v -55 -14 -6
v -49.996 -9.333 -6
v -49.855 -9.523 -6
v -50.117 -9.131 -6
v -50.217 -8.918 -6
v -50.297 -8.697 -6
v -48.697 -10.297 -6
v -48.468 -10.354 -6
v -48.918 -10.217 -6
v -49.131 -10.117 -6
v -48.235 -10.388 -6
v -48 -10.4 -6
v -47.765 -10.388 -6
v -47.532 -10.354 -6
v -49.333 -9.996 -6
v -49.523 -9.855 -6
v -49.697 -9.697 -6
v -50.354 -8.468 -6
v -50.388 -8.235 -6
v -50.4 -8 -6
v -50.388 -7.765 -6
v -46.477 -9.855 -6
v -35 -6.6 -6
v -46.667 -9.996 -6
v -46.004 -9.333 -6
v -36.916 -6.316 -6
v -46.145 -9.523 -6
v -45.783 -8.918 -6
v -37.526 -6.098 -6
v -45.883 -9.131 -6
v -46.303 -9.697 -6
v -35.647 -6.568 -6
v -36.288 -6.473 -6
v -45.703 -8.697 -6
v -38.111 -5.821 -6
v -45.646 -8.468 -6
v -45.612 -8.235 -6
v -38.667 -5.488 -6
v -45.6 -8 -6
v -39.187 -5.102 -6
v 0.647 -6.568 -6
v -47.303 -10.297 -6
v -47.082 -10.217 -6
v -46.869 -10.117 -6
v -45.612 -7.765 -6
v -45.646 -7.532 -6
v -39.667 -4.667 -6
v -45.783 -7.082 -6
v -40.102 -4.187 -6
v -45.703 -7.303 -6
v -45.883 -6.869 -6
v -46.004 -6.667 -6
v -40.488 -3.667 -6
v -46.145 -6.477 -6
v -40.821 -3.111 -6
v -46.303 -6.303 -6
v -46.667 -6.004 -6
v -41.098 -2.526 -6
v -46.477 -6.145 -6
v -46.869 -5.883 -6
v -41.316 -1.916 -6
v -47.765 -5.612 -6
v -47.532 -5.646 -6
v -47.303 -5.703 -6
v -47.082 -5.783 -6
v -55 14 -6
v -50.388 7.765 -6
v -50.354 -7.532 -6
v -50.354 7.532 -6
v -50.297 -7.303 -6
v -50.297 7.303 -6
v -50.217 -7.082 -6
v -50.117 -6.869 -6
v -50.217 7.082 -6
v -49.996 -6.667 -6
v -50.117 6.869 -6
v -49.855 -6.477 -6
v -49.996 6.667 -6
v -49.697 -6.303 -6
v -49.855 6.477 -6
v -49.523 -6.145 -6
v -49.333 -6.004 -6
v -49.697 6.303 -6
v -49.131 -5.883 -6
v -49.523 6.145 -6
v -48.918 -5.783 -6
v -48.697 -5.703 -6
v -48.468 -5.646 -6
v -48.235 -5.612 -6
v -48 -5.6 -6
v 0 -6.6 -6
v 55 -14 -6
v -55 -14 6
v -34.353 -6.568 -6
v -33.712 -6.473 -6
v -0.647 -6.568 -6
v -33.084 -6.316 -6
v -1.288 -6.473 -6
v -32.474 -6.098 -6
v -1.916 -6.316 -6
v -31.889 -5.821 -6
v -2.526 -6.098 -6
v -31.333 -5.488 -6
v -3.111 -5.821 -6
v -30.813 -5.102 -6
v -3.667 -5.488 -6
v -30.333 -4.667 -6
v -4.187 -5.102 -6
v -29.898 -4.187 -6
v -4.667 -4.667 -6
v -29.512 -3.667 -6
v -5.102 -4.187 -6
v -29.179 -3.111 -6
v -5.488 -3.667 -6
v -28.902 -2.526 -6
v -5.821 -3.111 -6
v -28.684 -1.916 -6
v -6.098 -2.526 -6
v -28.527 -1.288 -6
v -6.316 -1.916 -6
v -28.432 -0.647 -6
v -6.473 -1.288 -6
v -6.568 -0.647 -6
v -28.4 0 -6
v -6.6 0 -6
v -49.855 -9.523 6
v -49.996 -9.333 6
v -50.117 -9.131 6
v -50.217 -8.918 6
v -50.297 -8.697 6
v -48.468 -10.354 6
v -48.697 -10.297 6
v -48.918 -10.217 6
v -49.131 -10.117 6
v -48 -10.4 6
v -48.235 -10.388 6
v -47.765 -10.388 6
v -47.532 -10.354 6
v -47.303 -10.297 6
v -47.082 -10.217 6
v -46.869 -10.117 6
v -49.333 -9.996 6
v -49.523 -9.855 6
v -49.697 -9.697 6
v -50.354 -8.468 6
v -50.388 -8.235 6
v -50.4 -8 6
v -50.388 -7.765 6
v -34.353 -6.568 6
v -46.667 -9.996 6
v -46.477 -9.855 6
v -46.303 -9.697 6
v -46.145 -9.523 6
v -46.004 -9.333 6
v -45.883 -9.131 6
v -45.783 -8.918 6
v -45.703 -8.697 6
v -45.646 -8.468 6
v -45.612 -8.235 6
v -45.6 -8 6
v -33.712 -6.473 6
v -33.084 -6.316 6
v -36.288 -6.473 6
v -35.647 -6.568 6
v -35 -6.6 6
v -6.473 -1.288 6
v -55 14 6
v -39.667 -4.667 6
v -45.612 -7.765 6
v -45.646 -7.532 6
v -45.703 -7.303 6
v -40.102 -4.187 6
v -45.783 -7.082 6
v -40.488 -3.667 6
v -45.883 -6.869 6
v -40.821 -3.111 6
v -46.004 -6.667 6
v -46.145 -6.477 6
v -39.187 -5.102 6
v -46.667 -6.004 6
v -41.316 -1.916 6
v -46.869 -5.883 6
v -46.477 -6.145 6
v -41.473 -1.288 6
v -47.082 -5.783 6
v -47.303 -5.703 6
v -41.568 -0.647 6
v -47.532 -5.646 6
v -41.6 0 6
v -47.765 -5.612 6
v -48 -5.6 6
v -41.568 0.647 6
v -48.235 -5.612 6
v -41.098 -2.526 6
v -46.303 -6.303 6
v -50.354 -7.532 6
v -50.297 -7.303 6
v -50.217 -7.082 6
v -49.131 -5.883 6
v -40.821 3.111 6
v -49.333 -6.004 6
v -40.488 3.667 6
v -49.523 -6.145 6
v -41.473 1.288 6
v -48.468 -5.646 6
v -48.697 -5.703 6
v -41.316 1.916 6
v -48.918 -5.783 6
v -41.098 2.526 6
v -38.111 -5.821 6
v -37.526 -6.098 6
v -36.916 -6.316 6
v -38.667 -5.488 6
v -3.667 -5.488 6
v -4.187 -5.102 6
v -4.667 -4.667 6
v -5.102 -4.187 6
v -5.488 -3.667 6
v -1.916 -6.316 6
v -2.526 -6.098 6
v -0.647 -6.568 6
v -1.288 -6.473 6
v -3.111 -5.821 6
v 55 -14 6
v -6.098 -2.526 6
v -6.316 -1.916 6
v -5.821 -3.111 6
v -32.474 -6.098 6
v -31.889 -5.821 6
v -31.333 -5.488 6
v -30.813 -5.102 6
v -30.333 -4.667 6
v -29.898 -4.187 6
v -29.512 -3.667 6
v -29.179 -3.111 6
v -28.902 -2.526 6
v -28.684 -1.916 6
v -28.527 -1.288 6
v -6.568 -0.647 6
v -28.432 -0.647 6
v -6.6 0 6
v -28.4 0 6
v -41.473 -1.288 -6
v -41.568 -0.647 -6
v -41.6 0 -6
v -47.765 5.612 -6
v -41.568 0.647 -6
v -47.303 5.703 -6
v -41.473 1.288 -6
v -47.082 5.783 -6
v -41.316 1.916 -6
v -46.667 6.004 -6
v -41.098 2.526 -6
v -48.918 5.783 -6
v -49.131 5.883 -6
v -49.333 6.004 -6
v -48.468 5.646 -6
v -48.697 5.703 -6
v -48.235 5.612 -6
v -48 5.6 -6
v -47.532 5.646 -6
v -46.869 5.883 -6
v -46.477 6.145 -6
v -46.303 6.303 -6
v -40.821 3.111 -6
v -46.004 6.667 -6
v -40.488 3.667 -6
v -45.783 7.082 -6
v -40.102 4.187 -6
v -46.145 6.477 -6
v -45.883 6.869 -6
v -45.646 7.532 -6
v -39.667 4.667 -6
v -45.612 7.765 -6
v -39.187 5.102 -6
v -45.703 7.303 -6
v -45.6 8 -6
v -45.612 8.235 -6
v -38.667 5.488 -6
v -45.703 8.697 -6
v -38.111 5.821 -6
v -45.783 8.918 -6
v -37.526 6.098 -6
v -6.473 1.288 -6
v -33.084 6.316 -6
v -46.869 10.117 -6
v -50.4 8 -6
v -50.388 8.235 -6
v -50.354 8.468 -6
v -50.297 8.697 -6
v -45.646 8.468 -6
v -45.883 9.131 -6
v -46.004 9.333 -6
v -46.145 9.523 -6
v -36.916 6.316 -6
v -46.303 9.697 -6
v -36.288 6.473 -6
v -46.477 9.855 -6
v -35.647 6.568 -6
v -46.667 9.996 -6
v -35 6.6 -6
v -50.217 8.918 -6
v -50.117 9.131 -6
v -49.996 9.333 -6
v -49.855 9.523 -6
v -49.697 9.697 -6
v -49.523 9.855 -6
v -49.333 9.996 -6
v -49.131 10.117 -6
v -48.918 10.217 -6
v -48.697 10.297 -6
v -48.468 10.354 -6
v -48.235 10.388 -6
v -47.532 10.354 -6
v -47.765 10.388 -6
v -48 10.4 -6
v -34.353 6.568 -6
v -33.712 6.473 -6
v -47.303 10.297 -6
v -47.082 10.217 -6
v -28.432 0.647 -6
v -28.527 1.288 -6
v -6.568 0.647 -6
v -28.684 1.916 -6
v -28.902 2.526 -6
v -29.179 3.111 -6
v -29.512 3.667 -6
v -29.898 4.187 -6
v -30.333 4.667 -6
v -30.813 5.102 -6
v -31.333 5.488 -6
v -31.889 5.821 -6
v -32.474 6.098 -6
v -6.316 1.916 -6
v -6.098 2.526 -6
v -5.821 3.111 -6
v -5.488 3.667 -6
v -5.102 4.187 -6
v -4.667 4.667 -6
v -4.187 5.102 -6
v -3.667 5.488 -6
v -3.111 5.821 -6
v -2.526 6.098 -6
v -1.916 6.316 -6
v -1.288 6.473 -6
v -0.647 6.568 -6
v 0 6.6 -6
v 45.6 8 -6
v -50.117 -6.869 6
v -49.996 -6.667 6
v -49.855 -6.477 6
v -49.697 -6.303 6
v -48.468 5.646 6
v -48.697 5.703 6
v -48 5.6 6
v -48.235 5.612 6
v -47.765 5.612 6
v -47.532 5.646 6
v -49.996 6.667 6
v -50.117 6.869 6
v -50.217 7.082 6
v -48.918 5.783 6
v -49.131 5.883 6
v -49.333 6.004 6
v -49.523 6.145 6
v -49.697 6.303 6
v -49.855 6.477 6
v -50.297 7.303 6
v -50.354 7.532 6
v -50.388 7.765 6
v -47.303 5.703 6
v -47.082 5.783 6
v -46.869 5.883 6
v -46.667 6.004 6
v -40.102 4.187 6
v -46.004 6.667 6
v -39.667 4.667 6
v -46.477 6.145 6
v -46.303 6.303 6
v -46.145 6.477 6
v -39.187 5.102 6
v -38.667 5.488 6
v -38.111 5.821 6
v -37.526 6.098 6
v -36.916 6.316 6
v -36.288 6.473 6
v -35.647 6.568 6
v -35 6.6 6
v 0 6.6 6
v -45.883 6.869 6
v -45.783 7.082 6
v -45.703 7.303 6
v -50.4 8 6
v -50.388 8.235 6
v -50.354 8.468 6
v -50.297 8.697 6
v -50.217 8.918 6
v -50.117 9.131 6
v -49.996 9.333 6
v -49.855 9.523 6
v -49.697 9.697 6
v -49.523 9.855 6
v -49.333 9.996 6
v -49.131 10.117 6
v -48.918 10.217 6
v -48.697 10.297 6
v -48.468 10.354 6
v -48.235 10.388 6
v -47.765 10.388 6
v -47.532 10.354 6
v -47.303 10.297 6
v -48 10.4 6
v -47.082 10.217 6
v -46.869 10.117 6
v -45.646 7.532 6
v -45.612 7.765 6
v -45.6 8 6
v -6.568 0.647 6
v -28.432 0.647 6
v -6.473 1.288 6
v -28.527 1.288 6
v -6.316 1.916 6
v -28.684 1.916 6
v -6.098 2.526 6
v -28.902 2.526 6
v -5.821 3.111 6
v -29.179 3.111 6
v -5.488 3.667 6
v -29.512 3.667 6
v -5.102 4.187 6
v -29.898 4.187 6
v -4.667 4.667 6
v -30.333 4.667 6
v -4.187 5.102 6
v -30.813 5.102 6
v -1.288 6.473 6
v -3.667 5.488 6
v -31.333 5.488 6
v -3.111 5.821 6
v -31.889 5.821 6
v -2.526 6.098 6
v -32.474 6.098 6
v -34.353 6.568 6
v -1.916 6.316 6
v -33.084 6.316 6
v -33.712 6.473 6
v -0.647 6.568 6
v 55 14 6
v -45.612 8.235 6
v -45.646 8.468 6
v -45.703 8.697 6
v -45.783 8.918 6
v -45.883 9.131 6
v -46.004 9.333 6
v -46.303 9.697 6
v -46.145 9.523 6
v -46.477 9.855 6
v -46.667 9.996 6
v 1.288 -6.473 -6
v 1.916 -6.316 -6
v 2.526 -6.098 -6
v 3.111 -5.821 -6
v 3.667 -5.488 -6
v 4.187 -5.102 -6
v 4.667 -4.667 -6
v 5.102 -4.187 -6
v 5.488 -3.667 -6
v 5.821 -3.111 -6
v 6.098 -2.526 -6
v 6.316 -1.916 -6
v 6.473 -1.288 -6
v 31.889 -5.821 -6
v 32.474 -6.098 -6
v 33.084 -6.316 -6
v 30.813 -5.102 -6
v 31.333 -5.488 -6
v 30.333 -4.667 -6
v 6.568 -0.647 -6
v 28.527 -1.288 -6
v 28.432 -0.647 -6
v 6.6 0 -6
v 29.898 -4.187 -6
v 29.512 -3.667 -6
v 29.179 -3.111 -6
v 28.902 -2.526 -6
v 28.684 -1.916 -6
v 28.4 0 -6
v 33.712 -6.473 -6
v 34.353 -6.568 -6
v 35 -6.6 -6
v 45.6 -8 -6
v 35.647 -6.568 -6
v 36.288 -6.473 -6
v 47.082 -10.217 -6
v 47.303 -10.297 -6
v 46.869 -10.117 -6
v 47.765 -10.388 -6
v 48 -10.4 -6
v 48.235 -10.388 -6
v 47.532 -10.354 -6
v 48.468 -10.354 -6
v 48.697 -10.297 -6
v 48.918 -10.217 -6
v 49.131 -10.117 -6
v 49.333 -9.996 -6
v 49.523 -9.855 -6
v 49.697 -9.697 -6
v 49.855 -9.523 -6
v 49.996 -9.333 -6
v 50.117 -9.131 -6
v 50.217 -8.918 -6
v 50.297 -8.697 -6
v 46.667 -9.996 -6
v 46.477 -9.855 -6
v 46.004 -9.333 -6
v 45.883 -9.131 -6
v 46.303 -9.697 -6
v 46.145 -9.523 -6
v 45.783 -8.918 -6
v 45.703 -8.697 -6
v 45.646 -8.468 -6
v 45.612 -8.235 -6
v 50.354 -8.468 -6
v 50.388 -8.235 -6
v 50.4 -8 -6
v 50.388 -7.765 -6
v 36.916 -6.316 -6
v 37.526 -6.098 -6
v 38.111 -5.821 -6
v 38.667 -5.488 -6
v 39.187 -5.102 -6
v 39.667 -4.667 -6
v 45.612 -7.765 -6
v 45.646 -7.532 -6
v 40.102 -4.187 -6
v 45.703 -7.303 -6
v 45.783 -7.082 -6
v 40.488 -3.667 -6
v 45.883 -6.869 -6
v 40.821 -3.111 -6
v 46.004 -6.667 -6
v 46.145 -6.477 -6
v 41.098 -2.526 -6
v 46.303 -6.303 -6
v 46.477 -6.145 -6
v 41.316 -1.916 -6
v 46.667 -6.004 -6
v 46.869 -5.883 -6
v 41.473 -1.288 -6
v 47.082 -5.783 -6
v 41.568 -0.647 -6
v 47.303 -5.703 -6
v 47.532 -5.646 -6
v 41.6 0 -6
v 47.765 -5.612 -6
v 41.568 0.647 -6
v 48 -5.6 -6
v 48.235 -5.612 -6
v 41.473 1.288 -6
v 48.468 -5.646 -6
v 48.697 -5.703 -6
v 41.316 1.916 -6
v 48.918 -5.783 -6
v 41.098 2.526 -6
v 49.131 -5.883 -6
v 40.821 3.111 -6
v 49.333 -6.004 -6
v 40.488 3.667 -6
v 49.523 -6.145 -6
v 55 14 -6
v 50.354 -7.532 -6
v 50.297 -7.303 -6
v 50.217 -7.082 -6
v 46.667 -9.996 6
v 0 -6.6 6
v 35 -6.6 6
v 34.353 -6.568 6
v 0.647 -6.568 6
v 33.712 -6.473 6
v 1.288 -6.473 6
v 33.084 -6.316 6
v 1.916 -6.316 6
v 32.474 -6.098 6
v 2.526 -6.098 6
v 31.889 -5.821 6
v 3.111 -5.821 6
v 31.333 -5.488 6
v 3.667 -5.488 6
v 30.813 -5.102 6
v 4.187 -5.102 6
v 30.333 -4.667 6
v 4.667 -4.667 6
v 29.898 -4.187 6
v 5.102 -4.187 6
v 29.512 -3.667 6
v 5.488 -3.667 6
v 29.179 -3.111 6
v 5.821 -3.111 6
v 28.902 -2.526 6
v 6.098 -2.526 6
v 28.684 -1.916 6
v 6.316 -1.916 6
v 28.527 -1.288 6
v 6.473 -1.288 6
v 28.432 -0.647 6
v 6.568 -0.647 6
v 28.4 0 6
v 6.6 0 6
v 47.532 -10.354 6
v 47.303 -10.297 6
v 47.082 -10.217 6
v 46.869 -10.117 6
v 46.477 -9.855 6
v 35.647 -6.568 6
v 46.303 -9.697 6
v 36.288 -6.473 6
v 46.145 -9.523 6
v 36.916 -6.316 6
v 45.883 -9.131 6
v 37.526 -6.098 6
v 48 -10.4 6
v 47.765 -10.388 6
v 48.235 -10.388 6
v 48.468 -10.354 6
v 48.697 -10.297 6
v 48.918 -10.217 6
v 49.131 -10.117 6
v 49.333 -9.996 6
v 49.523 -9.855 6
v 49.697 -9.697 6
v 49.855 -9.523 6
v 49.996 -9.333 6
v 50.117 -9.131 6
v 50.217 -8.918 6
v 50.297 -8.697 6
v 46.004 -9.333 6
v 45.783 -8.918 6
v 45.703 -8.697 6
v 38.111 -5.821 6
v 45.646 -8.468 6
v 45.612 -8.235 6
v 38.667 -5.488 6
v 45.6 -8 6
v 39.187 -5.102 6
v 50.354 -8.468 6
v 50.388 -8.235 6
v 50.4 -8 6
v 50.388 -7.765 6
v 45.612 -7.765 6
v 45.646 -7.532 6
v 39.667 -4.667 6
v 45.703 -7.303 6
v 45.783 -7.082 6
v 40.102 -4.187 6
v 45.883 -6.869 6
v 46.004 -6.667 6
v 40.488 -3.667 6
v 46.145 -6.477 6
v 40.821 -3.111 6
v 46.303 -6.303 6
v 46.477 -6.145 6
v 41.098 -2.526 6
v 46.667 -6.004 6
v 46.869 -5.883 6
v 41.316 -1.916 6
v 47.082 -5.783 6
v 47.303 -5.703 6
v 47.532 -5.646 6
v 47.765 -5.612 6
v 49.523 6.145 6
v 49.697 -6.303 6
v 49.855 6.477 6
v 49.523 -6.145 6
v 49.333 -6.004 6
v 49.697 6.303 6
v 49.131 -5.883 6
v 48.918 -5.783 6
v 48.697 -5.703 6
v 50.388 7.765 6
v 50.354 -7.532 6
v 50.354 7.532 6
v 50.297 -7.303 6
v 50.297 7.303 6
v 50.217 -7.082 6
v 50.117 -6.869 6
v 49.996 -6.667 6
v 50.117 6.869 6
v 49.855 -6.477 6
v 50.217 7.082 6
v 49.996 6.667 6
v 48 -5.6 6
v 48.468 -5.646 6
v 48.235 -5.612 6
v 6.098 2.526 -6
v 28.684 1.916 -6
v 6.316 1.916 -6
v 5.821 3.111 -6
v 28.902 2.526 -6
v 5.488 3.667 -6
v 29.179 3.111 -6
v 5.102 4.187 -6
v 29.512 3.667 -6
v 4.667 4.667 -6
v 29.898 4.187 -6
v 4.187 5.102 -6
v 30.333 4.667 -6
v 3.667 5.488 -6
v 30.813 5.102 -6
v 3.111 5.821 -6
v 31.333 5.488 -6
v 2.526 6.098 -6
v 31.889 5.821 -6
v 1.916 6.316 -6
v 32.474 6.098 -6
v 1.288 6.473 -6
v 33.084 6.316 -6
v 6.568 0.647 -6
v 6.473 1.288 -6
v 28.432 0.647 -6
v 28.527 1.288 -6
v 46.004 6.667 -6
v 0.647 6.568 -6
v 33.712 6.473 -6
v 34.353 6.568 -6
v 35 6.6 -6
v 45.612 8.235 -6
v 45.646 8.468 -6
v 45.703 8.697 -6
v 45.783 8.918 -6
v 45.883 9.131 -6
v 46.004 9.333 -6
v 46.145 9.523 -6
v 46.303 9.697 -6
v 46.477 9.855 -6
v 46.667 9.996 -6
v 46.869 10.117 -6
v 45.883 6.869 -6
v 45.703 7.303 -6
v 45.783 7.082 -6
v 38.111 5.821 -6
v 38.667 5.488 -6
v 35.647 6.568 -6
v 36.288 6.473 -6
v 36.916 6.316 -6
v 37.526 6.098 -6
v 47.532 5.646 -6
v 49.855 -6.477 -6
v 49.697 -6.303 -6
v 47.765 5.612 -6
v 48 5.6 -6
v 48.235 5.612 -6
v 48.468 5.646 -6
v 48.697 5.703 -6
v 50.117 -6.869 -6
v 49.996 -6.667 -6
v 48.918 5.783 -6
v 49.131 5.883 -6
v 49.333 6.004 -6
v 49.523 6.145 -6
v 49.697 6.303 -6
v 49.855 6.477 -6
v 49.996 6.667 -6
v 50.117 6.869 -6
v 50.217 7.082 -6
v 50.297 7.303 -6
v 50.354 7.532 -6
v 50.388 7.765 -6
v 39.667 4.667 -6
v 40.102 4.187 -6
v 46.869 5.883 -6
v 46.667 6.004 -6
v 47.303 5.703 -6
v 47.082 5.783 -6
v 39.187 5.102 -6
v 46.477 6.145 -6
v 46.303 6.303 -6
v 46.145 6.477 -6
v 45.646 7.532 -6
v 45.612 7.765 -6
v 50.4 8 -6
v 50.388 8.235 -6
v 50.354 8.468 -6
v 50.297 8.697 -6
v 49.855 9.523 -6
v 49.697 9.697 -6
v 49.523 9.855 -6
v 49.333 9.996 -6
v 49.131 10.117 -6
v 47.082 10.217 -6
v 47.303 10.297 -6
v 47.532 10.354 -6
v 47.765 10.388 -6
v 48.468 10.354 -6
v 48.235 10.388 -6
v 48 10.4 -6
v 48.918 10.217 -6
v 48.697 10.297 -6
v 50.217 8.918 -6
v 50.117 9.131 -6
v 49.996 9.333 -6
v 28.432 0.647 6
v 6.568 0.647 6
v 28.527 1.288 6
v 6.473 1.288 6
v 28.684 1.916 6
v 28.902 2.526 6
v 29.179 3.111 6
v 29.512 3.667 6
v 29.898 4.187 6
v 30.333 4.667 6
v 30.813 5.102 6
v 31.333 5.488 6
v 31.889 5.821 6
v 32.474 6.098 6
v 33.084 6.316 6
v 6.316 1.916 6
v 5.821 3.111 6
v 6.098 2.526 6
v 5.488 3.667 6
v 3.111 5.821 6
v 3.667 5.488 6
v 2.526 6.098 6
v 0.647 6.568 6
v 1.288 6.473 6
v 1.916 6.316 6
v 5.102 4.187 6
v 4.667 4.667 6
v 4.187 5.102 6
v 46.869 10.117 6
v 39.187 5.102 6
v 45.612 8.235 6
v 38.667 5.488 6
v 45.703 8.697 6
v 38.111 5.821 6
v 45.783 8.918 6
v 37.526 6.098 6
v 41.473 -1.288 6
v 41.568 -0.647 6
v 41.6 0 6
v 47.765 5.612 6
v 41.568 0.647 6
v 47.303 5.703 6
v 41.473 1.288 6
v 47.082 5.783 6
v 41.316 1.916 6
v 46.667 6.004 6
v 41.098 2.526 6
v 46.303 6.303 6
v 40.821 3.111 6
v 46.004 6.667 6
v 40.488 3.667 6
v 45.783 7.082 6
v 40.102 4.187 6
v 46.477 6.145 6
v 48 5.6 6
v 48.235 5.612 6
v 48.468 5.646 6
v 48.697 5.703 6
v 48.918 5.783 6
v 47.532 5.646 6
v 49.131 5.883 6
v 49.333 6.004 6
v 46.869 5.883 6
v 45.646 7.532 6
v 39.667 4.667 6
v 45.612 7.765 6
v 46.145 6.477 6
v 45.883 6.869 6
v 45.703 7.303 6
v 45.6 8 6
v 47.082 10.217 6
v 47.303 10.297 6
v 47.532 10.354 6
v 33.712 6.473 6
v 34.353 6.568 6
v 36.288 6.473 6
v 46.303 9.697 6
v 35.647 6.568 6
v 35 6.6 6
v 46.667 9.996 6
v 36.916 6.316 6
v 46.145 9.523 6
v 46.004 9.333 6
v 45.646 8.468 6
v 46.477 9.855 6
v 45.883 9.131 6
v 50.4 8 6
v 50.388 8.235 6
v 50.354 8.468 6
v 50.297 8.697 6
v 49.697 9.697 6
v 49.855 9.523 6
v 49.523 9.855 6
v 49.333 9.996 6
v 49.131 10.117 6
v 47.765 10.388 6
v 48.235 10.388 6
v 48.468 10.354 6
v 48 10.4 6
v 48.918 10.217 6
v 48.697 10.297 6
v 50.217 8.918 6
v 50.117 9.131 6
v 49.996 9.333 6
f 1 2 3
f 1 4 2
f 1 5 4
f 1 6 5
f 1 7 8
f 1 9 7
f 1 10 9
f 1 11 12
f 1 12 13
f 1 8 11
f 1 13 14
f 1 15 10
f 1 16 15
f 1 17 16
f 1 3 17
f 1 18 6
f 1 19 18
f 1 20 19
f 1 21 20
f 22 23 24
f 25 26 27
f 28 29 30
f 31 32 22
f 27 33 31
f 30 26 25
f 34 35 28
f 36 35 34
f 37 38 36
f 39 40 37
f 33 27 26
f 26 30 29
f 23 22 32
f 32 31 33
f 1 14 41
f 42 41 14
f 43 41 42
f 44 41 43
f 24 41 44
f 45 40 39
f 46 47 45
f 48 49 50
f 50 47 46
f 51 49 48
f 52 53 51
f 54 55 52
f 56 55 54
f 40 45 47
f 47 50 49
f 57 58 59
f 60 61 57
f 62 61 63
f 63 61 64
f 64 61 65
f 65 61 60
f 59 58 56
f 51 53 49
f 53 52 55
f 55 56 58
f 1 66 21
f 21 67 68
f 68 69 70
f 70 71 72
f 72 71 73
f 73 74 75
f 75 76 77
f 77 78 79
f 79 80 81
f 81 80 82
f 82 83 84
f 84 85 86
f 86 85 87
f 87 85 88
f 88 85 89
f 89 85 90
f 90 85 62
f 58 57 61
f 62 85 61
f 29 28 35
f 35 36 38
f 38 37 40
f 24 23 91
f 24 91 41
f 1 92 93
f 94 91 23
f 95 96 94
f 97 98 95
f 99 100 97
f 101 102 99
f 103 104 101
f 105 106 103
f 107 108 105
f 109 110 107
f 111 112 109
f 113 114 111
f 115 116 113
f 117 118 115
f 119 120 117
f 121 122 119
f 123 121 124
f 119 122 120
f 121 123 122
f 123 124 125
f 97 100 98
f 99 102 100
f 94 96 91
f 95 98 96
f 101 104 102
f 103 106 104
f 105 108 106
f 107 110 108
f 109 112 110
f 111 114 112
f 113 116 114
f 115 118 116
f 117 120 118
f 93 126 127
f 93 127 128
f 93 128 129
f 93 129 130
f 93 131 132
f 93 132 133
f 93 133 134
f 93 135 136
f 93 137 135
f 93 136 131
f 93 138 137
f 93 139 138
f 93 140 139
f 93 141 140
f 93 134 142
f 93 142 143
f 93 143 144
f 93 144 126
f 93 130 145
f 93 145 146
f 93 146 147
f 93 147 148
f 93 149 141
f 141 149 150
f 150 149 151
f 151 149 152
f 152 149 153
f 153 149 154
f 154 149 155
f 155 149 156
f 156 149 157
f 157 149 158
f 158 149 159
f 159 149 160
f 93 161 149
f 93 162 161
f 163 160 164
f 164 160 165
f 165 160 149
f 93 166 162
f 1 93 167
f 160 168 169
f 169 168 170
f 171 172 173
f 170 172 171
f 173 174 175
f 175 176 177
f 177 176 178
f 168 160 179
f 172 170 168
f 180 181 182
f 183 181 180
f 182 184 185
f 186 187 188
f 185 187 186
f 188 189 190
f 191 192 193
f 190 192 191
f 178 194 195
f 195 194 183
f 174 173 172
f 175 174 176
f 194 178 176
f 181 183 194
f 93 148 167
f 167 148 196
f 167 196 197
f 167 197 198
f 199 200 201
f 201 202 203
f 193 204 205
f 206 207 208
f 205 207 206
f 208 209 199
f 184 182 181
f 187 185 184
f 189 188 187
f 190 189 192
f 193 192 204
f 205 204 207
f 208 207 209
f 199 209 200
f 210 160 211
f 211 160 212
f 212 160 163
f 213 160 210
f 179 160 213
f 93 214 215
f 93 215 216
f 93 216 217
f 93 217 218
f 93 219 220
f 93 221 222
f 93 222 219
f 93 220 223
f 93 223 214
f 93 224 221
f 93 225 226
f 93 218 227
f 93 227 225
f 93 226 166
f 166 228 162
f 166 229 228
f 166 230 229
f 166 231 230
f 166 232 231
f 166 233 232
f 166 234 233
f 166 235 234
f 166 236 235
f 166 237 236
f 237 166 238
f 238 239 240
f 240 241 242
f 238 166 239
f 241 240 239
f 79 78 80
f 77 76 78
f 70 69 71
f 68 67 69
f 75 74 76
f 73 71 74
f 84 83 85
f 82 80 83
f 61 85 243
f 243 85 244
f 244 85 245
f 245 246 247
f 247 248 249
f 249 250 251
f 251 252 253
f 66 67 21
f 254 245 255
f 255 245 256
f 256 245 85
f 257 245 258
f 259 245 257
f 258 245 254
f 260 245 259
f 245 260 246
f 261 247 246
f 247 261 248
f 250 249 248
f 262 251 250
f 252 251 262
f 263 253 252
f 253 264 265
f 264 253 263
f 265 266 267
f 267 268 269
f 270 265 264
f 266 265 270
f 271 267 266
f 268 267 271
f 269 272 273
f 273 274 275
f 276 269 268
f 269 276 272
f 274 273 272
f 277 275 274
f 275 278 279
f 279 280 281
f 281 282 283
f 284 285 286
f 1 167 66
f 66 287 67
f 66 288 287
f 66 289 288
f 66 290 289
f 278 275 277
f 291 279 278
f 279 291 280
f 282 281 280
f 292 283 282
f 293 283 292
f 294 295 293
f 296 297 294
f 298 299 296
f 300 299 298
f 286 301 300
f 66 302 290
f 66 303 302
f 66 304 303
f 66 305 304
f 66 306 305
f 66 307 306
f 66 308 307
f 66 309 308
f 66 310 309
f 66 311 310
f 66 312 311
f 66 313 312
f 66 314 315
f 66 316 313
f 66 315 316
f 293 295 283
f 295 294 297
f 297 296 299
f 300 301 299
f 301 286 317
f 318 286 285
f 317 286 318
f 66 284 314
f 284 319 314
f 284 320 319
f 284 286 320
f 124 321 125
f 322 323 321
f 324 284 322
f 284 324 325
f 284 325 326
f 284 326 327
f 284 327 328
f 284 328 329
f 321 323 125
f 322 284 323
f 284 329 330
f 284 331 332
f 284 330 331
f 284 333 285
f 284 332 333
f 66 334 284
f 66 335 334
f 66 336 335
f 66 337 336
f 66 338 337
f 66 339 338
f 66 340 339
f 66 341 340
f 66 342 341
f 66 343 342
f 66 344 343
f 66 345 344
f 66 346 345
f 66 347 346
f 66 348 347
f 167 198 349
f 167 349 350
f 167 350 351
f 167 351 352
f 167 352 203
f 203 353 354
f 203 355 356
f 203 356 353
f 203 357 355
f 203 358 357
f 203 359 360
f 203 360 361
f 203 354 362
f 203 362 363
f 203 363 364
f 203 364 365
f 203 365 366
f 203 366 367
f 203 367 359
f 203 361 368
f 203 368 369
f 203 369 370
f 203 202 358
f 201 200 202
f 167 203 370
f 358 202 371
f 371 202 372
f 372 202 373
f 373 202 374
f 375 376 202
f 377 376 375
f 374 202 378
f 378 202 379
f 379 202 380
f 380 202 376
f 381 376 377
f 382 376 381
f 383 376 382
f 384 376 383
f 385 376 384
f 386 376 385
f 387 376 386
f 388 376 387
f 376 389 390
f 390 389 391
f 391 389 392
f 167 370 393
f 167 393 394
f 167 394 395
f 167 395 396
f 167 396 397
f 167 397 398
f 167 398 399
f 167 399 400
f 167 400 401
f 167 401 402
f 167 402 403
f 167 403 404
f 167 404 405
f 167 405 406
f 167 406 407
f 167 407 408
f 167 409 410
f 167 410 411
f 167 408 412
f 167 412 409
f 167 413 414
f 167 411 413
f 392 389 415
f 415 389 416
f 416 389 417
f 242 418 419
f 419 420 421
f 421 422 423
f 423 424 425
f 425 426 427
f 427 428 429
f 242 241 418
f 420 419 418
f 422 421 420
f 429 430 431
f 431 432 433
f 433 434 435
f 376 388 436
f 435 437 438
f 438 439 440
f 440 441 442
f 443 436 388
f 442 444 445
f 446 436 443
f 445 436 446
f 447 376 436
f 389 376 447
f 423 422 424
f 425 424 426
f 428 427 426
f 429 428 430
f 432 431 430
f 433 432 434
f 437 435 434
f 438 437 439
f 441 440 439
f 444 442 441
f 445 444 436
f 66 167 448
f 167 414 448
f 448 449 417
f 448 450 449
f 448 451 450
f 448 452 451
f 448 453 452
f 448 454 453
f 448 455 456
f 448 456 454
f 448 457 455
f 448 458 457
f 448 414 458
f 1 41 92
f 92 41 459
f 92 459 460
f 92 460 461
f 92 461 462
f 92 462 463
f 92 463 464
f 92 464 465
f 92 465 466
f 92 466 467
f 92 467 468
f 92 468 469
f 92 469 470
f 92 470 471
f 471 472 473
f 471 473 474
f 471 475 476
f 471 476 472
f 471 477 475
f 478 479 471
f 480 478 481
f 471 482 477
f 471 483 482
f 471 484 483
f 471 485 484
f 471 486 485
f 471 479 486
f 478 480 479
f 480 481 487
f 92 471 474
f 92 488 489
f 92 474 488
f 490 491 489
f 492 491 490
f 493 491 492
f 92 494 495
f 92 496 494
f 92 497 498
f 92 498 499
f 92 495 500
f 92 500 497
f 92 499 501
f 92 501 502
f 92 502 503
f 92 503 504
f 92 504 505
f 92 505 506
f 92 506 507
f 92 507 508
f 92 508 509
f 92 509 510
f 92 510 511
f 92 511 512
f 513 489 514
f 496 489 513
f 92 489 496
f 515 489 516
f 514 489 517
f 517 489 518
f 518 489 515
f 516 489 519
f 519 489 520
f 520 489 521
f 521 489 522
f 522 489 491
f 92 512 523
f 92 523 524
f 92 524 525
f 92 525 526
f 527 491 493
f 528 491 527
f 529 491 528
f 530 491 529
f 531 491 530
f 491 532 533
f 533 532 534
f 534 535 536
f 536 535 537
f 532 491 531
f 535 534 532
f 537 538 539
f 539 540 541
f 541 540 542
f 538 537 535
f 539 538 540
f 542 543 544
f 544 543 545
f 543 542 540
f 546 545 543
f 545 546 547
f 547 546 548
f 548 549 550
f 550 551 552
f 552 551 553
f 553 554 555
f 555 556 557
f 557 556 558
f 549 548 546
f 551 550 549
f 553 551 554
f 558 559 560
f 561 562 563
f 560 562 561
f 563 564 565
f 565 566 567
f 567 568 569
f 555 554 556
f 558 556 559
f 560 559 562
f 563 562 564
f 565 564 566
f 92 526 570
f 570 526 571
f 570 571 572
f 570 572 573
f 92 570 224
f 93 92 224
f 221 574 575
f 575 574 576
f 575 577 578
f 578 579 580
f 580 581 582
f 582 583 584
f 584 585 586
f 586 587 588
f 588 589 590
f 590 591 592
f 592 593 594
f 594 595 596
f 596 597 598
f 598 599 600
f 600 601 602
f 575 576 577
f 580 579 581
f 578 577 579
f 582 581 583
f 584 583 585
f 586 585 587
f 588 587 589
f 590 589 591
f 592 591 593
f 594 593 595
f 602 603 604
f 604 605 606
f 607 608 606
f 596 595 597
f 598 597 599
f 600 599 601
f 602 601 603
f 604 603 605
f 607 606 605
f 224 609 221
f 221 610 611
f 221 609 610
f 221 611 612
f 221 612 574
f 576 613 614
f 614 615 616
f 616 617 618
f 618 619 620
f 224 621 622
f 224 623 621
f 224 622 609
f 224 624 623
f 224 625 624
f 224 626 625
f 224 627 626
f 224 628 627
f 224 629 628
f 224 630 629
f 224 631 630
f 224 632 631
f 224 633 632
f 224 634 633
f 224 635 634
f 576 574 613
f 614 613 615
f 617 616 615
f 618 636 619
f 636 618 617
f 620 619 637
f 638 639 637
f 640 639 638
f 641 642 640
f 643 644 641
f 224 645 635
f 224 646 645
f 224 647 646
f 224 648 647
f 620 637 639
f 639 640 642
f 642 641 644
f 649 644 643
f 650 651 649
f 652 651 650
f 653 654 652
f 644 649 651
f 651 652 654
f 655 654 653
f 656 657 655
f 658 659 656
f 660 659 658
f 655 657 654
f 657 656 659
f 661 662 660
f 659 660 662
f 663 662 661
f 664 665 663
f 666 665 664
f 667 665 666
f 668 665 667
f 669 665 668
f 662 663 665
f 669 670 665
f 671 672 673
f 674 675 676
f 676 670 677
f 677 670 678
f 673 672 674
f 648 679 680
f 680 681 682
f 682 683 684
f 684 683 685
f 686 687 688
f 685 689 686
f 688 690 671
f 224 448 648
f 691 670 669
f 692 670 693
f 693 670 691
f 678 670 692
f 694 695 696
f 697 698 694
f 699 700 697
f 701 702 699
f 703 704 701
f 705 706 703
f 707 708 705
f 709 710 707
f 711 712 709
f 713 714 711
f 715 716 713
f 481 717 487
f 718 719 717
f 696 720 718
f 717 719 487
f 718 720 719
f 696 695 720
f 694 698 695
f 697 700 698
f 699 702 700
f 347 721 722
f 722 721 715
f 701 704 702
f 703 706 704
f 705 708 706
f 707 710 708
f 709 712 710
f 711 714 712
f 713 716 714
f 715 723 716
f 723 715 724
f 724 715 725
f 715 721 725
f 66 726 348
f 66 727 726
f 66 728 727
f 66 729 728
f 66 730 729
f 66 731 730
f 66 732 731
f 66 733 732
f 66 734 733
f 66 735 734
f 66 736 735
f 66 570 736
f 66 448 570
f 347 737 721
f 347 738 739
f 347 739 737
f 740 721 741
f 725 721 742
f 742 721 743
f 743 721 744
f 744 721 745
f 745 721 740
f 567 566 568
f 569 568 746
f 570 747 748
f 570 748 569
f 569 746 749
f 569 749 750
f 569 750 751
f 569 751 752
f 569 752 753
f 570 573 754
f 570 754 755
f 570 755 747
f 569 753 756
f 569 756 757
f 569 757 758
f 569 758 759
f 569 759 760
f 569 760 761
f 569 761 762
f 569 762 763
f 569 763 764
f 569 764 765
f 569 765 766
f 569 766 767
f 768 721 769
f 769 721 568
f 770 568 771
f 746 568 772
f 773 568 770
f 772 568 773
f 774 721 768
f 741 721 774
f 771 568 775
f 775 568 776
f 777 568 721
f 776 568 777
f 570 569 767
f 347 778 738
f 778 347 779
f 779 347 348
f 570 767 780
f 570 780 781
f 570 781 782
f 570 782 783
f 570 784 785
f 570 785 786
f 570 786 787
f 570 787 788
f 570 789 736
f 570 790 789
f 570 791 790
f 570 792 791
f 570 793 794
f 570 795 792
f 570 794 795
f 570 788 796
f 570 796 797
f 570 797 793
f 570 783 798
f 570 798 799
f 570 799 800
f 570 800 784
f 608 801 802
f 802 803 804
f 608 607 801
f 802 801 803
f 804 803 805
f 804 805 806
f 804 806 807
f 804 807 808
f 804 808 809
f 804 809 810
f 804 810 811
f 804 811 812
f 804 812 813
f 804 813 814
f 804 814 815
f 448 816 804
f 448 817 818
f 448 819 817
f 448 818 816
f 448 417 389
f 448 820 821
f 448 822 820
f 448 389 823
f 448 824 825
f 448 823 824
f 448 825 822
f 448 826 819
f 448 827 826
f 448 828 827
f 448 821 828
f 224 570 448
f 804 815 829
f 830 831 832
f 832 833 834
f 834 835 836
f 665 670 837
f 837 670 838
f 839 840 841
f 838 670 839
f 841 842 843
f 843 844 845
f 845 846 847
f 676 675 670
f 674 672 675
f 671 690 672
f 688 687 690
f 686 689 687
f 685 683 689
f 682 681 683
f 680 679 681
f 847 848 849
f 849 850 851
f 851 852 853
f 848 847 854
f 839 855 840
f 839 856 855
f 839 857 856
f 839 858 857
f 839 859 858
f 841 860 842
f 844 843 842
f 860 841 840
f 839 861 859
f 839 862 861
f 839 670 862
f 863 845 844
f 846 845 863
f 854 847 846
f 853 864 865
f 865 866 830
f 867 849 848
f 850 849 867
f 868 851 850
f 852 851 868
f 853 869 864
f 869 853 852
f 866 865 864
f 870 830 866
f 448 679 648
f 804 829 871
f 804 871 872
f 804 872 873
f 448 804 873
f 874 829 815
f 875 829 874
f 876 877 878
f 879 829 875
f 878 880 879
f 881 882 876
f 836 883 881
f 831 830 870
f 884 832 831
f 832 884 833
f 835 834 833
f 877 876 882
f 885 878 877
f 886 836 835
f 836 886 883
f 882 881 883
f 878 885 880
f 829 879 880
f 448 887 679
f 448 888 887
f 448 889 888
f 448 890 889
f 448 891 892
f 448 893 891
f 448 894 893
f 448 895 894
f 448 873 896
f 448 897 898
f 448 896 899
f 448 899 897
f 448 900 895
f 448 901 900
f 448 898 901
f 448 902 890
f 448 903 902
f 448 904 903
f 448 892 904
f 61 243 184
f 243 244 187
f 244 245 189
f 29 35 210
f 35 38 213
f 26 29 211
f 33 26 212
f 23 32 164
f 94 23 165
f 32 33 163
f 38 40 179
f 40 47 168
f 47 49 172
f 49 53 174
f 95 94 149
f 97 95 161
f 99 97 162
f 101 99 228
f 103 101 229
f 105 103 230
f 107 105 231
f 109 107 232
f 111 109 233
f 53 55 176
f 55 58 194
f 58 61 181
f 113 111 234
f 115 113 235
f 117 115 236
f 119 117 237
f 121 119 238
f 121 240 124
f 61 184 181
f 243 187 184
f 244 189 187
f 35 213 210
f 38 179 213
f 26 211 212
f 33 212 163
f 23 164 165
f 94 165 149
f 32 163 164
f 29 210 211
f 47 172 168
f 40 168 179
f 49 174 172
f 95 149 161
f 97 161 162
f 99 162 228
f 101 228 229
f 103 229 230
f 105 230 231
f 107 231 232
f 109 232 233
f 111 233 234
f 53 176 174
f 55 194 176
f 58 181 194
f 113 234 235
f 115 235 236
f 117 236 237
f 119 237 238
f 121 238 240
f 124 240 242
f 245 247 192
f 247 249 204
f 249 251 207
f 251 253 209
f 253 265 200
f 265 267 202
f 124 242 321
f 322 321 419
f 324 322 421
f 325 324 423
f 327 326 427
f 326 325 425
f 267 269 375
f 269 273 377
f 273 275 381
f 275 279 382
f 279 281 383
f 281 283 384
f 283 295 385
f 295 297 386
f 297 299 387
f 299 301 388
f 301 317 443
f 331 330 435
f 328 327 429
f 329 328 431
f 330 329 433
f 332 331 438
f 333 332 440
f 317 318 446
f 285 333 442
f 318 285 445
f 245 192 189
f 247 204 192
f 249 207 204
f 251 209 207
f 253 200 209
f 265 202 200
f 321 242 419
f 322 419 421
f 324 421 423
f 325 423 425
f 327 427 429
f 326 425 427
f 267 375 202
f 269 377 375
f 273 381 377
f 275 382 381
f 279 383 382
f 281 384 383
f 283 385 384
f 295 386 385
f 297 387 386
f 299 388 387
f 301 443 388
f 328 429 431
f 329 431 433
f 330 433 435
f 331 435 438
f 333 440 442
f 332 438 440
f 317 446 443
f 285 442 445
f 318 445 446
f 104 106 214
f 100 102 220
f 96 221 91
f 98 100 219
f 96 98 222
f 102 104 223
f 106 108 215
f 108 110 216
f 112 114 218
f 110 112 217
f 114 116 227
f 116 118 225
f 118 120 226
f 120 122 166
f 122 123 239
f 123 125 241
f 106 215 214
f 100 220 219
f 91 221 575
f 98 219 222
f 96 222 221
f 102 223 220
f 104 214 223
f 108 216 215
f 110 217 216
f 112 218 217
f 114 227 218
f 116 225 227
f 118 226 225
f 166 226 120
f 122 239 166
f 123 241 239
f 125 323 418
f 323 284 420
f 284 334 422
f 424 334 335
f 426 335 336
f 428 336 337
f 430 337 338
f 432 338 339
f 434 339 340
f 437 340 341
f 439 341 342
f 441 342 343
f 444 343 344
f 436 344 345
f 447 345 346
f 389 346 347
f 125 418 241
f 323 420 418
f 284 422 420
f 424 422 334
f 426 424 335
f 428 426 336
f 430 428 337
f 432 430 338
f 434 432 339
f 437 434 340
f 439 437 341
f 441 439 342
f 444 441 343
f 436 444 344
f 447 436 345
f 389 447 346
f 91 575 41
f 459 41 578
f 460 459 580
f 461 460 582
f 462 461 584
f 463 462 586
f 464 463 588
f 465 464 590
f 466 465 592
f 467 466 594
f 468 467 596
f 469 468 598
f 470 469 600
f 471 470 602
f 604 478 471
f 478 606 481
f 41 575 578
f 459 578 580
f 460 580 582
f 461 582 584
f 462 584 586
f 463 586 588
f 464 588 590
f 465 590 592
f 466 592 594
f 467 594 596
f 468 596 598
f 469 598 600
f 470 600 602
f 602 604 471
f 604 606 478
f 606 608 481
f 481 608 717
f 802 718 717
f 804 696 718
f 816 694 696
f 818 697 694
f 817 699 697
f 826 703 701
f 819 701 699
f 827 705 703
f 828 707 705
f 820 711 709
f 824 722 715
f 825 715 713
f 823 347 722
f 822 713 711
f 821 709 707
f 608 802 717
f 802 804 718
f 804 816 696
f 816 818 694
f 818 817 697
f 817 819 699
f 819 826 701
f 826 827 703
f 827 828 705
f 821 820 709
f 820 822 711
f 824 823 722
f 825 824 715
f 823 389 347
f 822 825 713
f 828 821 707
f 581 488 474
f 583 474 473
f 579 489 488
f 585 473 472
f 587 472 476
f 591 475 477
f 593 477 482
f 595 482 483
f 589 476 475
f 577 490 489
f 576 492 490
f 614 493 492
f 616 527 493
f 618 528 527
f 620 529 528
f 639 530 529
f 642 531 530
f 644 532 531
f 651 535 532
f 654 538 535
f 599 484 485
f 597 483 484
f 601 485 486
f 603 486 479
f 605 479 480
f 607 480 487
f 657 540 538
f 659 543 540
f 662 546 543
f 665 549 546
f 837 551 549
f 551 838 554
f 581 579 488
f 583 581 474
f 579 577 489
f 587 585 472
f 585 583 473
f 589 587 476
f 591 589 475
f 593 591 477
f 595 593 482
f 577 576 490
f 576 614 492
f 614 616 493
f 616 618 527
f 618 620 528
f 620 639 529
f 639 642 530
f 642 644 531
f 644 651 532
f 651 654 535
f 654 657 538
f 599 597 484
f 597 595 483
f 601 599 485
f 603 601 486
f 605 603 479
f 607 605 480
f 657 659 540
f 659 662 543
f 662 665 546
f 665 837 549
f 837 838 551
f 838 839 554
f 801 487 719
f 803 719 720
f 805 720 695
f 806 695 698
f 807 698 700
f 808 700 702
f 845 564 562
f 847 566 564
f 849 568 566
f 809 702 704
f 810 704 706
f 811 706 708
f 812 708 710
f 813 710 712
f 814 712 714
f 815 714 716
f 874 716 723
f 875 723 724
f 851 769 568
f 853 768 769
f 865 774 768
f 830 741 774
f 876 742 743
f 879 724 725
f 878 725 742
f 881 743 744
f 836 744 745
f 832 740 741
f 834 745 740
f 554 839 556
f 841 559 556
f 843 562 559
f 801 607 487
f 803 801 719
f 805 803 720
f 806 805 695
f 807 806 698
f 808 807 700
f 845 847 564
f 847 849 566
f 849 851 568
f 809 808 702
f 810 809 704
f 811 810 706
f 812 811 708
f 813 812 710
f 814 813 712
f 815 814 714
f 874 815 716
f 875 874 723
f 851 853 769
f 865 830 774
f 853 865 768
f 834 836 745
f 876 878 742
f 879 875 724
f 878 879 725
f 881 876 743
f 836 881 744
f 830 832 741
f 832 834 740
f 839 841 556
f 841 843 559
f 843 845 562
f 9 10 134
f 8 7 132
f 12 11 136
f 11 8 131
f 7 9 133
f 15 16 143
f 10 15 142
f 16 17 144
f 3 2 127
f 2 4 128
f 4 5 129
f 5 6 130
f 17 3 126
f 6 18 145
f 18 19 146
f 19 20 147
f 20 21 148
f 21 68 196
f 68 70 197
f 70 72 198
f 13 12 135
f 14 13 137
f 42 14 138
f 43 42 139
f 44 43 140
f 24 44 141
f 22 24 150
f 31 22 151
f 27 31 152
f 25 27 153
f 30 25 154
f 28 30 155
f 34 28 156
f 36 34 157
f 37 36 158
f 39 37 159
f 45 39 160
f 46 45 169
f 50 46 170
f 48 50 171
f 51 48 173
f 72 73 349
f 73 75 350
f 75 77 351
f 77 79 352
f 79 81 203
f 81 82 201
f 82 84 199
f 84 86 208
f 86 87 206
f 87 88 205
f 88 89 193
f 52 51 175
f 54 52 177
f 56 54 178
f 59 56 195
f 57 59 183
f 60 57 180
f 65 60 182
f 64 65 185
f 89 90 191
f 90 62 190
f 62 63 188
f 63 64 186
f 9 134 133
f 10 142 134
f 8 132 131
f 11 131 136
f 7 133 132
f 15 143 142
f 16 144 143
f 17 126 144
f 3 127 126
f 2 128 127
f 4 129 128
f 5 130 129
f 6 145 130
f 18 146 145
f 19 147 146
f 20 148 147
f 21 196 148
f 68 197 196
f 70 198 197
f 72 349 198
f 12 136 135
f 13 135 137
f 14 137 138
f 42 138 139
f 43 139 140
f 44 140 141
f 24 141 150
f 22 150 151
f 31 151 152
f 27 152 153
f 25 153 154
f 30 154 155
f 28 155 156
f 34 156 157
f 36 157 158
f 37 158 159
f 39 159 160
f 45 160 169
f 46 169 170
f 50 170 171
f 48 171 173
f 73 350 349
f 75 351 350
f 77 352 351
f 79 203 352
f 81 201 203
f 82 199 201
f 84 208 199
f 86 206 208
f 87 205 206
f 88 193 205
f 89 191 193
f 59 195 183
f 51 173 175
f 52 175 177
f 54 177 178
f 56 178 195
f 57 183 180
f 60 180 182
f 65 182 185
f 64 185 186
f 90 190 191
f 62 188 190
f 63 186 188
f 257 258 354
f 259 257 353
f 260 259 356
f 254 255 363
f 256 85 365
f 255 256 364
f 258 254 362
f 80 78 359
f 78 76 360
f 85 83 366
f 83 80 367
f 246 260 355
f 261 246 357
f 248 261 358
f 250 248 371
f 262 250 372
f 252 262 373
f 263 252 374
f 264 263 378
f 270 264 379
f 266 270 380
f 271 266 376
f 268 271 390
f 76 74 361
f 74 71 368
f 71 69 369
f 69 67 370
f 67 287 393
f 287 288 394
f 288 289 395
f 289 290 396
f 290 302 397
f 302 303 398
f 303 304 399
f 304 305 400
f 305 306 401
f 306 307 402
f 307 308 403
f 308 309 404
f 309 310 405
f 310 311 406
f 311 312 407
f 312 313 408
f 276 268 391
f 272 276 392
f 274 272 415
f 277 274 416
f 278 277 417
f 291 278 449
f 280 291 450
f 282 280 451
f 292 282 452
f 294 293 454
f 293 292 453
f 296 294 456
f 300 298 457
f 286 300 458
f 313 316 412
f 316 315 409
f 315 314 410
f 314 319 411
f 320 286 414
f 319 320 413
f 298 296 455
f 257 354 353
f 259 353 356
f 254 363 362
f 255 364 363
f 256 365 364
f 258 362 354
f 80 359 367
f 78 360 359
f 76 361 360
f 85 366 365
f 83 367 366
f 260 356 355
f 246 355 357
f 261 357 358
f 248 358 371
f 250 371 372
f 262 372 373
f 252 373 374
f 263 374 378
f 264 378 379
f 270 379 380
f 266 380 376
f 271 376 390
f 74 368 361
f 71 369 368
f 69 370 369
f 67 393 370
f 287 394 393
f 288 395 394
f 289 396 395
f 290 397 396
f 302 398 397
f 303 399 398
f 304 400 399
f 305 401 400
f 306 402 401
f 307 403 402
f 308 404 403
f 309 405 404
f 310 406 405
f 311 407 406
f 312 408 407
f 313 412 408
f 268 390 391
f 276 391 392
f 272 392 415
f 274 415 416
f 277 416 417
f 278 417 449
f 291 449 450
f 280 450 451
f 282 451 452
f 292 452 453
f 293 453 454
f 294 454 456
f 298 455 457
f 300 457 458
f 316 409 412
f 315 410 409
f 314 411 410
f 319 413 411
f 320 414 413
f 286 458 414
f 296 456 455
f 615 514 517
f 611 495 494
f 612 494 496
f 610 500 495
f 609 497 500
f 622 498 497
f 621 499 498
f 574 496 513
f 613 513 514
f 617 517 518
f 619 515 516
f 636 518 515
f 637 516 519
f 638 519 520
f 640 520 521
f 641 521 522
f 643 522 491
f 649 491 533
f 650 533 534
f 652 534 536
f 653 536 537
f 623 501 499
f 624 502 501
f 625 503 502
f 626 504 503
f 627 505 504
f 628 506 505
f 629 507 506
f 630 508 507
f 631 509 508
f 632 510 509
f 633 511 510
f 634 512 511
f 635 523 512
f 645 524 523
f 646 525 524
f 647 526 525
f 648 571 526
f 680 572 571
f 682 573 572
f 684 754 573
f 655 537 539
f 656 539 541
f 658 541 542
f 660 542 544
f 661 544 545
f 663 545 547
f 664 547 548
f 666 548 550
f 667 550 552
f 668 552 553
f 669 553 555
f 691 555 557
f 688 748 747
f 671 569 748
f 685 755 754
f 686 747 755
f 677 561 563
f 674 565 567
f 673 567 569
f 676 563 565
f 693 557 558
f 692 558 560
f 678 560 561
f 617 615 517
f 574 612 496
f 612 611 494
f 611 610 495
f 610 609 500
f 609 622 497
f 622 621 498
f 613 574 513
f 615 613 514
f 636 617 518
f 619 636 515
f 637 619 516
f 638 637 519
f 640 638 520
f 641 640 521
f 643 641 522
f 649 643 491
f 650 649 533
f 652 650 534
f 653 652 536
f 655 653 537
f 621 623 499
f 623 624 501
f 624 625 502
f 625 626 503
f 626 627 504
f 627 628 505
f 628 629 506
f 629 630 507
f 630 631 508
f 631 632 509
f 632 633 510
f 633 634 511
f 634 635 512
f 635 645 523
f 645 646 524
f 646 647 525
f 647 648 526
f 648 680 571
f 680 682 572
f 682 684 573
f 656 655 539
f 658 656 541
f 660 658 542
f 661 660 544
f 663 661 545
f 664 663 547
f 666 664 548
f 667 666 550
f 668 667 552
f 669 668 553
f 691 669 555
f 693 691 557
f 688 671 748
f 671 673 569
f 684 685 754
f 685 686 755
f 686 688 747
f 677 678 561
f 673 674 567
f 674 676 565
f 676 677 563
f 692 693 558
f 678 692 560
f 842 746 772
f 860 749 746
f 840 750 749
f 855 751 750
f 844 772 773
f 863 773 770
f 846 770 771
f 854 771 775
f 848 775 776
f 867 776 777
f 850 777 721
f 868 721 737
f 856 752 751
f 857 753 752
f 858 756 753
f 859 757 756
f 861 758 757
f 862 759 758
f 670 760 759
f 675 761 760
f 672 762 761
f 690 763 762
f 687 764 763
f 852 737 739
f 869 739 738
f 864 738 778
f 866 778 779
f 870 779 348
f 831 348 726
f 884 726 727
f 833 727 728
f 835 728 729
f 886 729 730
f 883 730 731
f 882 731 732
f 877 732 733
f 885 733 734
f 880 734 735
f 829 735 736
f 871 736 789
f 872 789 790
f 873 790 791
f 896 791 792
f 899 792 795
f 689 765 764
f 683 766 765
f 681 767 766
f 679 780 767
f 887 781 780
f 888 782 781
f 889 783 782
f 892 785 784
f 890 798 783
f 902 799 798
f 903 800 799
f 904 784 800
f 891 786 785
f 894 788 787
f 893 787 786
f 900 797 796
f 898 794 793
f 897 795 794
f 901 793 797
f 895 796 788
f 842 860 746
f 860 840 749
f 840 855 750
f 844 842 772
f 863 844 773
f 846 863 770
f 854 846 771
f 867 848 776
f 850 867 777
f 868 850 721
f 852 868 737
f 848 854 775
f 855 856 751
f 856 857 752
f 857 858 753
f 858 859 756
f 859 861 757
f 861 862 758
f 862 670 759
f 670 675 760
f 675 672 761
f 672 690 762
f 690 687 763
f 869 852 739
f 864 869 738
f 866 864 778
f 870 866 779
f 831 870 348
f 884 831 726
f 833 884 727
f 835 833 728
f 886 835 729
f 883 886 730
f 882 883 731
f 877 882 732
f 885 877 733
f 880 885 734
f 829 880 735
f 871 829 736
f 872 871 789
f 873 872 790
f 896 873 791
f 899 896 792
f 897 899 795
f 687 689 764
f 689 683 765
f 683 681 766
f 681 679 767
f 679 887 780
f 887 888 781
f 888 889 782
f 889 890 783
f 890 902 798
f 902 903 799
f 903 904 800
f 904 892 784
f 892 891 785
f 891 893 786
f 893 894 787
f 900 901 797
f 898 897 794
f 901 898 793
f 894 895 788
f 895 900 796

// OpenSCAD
$fn = 64;

difference() {
  cube([110, 28, 12], center = true);
  for (x = [-35, 0, 35]) {
    translate([x, 0, 0]) cylinder(h = 20, r = 6.6, center = true);
  }
  for (x = [-48, 48], y = [-8, 8]) {
    translate([x, y, 0]) cylinder(h = 20, r = 2.4, center = true);
  }
}
